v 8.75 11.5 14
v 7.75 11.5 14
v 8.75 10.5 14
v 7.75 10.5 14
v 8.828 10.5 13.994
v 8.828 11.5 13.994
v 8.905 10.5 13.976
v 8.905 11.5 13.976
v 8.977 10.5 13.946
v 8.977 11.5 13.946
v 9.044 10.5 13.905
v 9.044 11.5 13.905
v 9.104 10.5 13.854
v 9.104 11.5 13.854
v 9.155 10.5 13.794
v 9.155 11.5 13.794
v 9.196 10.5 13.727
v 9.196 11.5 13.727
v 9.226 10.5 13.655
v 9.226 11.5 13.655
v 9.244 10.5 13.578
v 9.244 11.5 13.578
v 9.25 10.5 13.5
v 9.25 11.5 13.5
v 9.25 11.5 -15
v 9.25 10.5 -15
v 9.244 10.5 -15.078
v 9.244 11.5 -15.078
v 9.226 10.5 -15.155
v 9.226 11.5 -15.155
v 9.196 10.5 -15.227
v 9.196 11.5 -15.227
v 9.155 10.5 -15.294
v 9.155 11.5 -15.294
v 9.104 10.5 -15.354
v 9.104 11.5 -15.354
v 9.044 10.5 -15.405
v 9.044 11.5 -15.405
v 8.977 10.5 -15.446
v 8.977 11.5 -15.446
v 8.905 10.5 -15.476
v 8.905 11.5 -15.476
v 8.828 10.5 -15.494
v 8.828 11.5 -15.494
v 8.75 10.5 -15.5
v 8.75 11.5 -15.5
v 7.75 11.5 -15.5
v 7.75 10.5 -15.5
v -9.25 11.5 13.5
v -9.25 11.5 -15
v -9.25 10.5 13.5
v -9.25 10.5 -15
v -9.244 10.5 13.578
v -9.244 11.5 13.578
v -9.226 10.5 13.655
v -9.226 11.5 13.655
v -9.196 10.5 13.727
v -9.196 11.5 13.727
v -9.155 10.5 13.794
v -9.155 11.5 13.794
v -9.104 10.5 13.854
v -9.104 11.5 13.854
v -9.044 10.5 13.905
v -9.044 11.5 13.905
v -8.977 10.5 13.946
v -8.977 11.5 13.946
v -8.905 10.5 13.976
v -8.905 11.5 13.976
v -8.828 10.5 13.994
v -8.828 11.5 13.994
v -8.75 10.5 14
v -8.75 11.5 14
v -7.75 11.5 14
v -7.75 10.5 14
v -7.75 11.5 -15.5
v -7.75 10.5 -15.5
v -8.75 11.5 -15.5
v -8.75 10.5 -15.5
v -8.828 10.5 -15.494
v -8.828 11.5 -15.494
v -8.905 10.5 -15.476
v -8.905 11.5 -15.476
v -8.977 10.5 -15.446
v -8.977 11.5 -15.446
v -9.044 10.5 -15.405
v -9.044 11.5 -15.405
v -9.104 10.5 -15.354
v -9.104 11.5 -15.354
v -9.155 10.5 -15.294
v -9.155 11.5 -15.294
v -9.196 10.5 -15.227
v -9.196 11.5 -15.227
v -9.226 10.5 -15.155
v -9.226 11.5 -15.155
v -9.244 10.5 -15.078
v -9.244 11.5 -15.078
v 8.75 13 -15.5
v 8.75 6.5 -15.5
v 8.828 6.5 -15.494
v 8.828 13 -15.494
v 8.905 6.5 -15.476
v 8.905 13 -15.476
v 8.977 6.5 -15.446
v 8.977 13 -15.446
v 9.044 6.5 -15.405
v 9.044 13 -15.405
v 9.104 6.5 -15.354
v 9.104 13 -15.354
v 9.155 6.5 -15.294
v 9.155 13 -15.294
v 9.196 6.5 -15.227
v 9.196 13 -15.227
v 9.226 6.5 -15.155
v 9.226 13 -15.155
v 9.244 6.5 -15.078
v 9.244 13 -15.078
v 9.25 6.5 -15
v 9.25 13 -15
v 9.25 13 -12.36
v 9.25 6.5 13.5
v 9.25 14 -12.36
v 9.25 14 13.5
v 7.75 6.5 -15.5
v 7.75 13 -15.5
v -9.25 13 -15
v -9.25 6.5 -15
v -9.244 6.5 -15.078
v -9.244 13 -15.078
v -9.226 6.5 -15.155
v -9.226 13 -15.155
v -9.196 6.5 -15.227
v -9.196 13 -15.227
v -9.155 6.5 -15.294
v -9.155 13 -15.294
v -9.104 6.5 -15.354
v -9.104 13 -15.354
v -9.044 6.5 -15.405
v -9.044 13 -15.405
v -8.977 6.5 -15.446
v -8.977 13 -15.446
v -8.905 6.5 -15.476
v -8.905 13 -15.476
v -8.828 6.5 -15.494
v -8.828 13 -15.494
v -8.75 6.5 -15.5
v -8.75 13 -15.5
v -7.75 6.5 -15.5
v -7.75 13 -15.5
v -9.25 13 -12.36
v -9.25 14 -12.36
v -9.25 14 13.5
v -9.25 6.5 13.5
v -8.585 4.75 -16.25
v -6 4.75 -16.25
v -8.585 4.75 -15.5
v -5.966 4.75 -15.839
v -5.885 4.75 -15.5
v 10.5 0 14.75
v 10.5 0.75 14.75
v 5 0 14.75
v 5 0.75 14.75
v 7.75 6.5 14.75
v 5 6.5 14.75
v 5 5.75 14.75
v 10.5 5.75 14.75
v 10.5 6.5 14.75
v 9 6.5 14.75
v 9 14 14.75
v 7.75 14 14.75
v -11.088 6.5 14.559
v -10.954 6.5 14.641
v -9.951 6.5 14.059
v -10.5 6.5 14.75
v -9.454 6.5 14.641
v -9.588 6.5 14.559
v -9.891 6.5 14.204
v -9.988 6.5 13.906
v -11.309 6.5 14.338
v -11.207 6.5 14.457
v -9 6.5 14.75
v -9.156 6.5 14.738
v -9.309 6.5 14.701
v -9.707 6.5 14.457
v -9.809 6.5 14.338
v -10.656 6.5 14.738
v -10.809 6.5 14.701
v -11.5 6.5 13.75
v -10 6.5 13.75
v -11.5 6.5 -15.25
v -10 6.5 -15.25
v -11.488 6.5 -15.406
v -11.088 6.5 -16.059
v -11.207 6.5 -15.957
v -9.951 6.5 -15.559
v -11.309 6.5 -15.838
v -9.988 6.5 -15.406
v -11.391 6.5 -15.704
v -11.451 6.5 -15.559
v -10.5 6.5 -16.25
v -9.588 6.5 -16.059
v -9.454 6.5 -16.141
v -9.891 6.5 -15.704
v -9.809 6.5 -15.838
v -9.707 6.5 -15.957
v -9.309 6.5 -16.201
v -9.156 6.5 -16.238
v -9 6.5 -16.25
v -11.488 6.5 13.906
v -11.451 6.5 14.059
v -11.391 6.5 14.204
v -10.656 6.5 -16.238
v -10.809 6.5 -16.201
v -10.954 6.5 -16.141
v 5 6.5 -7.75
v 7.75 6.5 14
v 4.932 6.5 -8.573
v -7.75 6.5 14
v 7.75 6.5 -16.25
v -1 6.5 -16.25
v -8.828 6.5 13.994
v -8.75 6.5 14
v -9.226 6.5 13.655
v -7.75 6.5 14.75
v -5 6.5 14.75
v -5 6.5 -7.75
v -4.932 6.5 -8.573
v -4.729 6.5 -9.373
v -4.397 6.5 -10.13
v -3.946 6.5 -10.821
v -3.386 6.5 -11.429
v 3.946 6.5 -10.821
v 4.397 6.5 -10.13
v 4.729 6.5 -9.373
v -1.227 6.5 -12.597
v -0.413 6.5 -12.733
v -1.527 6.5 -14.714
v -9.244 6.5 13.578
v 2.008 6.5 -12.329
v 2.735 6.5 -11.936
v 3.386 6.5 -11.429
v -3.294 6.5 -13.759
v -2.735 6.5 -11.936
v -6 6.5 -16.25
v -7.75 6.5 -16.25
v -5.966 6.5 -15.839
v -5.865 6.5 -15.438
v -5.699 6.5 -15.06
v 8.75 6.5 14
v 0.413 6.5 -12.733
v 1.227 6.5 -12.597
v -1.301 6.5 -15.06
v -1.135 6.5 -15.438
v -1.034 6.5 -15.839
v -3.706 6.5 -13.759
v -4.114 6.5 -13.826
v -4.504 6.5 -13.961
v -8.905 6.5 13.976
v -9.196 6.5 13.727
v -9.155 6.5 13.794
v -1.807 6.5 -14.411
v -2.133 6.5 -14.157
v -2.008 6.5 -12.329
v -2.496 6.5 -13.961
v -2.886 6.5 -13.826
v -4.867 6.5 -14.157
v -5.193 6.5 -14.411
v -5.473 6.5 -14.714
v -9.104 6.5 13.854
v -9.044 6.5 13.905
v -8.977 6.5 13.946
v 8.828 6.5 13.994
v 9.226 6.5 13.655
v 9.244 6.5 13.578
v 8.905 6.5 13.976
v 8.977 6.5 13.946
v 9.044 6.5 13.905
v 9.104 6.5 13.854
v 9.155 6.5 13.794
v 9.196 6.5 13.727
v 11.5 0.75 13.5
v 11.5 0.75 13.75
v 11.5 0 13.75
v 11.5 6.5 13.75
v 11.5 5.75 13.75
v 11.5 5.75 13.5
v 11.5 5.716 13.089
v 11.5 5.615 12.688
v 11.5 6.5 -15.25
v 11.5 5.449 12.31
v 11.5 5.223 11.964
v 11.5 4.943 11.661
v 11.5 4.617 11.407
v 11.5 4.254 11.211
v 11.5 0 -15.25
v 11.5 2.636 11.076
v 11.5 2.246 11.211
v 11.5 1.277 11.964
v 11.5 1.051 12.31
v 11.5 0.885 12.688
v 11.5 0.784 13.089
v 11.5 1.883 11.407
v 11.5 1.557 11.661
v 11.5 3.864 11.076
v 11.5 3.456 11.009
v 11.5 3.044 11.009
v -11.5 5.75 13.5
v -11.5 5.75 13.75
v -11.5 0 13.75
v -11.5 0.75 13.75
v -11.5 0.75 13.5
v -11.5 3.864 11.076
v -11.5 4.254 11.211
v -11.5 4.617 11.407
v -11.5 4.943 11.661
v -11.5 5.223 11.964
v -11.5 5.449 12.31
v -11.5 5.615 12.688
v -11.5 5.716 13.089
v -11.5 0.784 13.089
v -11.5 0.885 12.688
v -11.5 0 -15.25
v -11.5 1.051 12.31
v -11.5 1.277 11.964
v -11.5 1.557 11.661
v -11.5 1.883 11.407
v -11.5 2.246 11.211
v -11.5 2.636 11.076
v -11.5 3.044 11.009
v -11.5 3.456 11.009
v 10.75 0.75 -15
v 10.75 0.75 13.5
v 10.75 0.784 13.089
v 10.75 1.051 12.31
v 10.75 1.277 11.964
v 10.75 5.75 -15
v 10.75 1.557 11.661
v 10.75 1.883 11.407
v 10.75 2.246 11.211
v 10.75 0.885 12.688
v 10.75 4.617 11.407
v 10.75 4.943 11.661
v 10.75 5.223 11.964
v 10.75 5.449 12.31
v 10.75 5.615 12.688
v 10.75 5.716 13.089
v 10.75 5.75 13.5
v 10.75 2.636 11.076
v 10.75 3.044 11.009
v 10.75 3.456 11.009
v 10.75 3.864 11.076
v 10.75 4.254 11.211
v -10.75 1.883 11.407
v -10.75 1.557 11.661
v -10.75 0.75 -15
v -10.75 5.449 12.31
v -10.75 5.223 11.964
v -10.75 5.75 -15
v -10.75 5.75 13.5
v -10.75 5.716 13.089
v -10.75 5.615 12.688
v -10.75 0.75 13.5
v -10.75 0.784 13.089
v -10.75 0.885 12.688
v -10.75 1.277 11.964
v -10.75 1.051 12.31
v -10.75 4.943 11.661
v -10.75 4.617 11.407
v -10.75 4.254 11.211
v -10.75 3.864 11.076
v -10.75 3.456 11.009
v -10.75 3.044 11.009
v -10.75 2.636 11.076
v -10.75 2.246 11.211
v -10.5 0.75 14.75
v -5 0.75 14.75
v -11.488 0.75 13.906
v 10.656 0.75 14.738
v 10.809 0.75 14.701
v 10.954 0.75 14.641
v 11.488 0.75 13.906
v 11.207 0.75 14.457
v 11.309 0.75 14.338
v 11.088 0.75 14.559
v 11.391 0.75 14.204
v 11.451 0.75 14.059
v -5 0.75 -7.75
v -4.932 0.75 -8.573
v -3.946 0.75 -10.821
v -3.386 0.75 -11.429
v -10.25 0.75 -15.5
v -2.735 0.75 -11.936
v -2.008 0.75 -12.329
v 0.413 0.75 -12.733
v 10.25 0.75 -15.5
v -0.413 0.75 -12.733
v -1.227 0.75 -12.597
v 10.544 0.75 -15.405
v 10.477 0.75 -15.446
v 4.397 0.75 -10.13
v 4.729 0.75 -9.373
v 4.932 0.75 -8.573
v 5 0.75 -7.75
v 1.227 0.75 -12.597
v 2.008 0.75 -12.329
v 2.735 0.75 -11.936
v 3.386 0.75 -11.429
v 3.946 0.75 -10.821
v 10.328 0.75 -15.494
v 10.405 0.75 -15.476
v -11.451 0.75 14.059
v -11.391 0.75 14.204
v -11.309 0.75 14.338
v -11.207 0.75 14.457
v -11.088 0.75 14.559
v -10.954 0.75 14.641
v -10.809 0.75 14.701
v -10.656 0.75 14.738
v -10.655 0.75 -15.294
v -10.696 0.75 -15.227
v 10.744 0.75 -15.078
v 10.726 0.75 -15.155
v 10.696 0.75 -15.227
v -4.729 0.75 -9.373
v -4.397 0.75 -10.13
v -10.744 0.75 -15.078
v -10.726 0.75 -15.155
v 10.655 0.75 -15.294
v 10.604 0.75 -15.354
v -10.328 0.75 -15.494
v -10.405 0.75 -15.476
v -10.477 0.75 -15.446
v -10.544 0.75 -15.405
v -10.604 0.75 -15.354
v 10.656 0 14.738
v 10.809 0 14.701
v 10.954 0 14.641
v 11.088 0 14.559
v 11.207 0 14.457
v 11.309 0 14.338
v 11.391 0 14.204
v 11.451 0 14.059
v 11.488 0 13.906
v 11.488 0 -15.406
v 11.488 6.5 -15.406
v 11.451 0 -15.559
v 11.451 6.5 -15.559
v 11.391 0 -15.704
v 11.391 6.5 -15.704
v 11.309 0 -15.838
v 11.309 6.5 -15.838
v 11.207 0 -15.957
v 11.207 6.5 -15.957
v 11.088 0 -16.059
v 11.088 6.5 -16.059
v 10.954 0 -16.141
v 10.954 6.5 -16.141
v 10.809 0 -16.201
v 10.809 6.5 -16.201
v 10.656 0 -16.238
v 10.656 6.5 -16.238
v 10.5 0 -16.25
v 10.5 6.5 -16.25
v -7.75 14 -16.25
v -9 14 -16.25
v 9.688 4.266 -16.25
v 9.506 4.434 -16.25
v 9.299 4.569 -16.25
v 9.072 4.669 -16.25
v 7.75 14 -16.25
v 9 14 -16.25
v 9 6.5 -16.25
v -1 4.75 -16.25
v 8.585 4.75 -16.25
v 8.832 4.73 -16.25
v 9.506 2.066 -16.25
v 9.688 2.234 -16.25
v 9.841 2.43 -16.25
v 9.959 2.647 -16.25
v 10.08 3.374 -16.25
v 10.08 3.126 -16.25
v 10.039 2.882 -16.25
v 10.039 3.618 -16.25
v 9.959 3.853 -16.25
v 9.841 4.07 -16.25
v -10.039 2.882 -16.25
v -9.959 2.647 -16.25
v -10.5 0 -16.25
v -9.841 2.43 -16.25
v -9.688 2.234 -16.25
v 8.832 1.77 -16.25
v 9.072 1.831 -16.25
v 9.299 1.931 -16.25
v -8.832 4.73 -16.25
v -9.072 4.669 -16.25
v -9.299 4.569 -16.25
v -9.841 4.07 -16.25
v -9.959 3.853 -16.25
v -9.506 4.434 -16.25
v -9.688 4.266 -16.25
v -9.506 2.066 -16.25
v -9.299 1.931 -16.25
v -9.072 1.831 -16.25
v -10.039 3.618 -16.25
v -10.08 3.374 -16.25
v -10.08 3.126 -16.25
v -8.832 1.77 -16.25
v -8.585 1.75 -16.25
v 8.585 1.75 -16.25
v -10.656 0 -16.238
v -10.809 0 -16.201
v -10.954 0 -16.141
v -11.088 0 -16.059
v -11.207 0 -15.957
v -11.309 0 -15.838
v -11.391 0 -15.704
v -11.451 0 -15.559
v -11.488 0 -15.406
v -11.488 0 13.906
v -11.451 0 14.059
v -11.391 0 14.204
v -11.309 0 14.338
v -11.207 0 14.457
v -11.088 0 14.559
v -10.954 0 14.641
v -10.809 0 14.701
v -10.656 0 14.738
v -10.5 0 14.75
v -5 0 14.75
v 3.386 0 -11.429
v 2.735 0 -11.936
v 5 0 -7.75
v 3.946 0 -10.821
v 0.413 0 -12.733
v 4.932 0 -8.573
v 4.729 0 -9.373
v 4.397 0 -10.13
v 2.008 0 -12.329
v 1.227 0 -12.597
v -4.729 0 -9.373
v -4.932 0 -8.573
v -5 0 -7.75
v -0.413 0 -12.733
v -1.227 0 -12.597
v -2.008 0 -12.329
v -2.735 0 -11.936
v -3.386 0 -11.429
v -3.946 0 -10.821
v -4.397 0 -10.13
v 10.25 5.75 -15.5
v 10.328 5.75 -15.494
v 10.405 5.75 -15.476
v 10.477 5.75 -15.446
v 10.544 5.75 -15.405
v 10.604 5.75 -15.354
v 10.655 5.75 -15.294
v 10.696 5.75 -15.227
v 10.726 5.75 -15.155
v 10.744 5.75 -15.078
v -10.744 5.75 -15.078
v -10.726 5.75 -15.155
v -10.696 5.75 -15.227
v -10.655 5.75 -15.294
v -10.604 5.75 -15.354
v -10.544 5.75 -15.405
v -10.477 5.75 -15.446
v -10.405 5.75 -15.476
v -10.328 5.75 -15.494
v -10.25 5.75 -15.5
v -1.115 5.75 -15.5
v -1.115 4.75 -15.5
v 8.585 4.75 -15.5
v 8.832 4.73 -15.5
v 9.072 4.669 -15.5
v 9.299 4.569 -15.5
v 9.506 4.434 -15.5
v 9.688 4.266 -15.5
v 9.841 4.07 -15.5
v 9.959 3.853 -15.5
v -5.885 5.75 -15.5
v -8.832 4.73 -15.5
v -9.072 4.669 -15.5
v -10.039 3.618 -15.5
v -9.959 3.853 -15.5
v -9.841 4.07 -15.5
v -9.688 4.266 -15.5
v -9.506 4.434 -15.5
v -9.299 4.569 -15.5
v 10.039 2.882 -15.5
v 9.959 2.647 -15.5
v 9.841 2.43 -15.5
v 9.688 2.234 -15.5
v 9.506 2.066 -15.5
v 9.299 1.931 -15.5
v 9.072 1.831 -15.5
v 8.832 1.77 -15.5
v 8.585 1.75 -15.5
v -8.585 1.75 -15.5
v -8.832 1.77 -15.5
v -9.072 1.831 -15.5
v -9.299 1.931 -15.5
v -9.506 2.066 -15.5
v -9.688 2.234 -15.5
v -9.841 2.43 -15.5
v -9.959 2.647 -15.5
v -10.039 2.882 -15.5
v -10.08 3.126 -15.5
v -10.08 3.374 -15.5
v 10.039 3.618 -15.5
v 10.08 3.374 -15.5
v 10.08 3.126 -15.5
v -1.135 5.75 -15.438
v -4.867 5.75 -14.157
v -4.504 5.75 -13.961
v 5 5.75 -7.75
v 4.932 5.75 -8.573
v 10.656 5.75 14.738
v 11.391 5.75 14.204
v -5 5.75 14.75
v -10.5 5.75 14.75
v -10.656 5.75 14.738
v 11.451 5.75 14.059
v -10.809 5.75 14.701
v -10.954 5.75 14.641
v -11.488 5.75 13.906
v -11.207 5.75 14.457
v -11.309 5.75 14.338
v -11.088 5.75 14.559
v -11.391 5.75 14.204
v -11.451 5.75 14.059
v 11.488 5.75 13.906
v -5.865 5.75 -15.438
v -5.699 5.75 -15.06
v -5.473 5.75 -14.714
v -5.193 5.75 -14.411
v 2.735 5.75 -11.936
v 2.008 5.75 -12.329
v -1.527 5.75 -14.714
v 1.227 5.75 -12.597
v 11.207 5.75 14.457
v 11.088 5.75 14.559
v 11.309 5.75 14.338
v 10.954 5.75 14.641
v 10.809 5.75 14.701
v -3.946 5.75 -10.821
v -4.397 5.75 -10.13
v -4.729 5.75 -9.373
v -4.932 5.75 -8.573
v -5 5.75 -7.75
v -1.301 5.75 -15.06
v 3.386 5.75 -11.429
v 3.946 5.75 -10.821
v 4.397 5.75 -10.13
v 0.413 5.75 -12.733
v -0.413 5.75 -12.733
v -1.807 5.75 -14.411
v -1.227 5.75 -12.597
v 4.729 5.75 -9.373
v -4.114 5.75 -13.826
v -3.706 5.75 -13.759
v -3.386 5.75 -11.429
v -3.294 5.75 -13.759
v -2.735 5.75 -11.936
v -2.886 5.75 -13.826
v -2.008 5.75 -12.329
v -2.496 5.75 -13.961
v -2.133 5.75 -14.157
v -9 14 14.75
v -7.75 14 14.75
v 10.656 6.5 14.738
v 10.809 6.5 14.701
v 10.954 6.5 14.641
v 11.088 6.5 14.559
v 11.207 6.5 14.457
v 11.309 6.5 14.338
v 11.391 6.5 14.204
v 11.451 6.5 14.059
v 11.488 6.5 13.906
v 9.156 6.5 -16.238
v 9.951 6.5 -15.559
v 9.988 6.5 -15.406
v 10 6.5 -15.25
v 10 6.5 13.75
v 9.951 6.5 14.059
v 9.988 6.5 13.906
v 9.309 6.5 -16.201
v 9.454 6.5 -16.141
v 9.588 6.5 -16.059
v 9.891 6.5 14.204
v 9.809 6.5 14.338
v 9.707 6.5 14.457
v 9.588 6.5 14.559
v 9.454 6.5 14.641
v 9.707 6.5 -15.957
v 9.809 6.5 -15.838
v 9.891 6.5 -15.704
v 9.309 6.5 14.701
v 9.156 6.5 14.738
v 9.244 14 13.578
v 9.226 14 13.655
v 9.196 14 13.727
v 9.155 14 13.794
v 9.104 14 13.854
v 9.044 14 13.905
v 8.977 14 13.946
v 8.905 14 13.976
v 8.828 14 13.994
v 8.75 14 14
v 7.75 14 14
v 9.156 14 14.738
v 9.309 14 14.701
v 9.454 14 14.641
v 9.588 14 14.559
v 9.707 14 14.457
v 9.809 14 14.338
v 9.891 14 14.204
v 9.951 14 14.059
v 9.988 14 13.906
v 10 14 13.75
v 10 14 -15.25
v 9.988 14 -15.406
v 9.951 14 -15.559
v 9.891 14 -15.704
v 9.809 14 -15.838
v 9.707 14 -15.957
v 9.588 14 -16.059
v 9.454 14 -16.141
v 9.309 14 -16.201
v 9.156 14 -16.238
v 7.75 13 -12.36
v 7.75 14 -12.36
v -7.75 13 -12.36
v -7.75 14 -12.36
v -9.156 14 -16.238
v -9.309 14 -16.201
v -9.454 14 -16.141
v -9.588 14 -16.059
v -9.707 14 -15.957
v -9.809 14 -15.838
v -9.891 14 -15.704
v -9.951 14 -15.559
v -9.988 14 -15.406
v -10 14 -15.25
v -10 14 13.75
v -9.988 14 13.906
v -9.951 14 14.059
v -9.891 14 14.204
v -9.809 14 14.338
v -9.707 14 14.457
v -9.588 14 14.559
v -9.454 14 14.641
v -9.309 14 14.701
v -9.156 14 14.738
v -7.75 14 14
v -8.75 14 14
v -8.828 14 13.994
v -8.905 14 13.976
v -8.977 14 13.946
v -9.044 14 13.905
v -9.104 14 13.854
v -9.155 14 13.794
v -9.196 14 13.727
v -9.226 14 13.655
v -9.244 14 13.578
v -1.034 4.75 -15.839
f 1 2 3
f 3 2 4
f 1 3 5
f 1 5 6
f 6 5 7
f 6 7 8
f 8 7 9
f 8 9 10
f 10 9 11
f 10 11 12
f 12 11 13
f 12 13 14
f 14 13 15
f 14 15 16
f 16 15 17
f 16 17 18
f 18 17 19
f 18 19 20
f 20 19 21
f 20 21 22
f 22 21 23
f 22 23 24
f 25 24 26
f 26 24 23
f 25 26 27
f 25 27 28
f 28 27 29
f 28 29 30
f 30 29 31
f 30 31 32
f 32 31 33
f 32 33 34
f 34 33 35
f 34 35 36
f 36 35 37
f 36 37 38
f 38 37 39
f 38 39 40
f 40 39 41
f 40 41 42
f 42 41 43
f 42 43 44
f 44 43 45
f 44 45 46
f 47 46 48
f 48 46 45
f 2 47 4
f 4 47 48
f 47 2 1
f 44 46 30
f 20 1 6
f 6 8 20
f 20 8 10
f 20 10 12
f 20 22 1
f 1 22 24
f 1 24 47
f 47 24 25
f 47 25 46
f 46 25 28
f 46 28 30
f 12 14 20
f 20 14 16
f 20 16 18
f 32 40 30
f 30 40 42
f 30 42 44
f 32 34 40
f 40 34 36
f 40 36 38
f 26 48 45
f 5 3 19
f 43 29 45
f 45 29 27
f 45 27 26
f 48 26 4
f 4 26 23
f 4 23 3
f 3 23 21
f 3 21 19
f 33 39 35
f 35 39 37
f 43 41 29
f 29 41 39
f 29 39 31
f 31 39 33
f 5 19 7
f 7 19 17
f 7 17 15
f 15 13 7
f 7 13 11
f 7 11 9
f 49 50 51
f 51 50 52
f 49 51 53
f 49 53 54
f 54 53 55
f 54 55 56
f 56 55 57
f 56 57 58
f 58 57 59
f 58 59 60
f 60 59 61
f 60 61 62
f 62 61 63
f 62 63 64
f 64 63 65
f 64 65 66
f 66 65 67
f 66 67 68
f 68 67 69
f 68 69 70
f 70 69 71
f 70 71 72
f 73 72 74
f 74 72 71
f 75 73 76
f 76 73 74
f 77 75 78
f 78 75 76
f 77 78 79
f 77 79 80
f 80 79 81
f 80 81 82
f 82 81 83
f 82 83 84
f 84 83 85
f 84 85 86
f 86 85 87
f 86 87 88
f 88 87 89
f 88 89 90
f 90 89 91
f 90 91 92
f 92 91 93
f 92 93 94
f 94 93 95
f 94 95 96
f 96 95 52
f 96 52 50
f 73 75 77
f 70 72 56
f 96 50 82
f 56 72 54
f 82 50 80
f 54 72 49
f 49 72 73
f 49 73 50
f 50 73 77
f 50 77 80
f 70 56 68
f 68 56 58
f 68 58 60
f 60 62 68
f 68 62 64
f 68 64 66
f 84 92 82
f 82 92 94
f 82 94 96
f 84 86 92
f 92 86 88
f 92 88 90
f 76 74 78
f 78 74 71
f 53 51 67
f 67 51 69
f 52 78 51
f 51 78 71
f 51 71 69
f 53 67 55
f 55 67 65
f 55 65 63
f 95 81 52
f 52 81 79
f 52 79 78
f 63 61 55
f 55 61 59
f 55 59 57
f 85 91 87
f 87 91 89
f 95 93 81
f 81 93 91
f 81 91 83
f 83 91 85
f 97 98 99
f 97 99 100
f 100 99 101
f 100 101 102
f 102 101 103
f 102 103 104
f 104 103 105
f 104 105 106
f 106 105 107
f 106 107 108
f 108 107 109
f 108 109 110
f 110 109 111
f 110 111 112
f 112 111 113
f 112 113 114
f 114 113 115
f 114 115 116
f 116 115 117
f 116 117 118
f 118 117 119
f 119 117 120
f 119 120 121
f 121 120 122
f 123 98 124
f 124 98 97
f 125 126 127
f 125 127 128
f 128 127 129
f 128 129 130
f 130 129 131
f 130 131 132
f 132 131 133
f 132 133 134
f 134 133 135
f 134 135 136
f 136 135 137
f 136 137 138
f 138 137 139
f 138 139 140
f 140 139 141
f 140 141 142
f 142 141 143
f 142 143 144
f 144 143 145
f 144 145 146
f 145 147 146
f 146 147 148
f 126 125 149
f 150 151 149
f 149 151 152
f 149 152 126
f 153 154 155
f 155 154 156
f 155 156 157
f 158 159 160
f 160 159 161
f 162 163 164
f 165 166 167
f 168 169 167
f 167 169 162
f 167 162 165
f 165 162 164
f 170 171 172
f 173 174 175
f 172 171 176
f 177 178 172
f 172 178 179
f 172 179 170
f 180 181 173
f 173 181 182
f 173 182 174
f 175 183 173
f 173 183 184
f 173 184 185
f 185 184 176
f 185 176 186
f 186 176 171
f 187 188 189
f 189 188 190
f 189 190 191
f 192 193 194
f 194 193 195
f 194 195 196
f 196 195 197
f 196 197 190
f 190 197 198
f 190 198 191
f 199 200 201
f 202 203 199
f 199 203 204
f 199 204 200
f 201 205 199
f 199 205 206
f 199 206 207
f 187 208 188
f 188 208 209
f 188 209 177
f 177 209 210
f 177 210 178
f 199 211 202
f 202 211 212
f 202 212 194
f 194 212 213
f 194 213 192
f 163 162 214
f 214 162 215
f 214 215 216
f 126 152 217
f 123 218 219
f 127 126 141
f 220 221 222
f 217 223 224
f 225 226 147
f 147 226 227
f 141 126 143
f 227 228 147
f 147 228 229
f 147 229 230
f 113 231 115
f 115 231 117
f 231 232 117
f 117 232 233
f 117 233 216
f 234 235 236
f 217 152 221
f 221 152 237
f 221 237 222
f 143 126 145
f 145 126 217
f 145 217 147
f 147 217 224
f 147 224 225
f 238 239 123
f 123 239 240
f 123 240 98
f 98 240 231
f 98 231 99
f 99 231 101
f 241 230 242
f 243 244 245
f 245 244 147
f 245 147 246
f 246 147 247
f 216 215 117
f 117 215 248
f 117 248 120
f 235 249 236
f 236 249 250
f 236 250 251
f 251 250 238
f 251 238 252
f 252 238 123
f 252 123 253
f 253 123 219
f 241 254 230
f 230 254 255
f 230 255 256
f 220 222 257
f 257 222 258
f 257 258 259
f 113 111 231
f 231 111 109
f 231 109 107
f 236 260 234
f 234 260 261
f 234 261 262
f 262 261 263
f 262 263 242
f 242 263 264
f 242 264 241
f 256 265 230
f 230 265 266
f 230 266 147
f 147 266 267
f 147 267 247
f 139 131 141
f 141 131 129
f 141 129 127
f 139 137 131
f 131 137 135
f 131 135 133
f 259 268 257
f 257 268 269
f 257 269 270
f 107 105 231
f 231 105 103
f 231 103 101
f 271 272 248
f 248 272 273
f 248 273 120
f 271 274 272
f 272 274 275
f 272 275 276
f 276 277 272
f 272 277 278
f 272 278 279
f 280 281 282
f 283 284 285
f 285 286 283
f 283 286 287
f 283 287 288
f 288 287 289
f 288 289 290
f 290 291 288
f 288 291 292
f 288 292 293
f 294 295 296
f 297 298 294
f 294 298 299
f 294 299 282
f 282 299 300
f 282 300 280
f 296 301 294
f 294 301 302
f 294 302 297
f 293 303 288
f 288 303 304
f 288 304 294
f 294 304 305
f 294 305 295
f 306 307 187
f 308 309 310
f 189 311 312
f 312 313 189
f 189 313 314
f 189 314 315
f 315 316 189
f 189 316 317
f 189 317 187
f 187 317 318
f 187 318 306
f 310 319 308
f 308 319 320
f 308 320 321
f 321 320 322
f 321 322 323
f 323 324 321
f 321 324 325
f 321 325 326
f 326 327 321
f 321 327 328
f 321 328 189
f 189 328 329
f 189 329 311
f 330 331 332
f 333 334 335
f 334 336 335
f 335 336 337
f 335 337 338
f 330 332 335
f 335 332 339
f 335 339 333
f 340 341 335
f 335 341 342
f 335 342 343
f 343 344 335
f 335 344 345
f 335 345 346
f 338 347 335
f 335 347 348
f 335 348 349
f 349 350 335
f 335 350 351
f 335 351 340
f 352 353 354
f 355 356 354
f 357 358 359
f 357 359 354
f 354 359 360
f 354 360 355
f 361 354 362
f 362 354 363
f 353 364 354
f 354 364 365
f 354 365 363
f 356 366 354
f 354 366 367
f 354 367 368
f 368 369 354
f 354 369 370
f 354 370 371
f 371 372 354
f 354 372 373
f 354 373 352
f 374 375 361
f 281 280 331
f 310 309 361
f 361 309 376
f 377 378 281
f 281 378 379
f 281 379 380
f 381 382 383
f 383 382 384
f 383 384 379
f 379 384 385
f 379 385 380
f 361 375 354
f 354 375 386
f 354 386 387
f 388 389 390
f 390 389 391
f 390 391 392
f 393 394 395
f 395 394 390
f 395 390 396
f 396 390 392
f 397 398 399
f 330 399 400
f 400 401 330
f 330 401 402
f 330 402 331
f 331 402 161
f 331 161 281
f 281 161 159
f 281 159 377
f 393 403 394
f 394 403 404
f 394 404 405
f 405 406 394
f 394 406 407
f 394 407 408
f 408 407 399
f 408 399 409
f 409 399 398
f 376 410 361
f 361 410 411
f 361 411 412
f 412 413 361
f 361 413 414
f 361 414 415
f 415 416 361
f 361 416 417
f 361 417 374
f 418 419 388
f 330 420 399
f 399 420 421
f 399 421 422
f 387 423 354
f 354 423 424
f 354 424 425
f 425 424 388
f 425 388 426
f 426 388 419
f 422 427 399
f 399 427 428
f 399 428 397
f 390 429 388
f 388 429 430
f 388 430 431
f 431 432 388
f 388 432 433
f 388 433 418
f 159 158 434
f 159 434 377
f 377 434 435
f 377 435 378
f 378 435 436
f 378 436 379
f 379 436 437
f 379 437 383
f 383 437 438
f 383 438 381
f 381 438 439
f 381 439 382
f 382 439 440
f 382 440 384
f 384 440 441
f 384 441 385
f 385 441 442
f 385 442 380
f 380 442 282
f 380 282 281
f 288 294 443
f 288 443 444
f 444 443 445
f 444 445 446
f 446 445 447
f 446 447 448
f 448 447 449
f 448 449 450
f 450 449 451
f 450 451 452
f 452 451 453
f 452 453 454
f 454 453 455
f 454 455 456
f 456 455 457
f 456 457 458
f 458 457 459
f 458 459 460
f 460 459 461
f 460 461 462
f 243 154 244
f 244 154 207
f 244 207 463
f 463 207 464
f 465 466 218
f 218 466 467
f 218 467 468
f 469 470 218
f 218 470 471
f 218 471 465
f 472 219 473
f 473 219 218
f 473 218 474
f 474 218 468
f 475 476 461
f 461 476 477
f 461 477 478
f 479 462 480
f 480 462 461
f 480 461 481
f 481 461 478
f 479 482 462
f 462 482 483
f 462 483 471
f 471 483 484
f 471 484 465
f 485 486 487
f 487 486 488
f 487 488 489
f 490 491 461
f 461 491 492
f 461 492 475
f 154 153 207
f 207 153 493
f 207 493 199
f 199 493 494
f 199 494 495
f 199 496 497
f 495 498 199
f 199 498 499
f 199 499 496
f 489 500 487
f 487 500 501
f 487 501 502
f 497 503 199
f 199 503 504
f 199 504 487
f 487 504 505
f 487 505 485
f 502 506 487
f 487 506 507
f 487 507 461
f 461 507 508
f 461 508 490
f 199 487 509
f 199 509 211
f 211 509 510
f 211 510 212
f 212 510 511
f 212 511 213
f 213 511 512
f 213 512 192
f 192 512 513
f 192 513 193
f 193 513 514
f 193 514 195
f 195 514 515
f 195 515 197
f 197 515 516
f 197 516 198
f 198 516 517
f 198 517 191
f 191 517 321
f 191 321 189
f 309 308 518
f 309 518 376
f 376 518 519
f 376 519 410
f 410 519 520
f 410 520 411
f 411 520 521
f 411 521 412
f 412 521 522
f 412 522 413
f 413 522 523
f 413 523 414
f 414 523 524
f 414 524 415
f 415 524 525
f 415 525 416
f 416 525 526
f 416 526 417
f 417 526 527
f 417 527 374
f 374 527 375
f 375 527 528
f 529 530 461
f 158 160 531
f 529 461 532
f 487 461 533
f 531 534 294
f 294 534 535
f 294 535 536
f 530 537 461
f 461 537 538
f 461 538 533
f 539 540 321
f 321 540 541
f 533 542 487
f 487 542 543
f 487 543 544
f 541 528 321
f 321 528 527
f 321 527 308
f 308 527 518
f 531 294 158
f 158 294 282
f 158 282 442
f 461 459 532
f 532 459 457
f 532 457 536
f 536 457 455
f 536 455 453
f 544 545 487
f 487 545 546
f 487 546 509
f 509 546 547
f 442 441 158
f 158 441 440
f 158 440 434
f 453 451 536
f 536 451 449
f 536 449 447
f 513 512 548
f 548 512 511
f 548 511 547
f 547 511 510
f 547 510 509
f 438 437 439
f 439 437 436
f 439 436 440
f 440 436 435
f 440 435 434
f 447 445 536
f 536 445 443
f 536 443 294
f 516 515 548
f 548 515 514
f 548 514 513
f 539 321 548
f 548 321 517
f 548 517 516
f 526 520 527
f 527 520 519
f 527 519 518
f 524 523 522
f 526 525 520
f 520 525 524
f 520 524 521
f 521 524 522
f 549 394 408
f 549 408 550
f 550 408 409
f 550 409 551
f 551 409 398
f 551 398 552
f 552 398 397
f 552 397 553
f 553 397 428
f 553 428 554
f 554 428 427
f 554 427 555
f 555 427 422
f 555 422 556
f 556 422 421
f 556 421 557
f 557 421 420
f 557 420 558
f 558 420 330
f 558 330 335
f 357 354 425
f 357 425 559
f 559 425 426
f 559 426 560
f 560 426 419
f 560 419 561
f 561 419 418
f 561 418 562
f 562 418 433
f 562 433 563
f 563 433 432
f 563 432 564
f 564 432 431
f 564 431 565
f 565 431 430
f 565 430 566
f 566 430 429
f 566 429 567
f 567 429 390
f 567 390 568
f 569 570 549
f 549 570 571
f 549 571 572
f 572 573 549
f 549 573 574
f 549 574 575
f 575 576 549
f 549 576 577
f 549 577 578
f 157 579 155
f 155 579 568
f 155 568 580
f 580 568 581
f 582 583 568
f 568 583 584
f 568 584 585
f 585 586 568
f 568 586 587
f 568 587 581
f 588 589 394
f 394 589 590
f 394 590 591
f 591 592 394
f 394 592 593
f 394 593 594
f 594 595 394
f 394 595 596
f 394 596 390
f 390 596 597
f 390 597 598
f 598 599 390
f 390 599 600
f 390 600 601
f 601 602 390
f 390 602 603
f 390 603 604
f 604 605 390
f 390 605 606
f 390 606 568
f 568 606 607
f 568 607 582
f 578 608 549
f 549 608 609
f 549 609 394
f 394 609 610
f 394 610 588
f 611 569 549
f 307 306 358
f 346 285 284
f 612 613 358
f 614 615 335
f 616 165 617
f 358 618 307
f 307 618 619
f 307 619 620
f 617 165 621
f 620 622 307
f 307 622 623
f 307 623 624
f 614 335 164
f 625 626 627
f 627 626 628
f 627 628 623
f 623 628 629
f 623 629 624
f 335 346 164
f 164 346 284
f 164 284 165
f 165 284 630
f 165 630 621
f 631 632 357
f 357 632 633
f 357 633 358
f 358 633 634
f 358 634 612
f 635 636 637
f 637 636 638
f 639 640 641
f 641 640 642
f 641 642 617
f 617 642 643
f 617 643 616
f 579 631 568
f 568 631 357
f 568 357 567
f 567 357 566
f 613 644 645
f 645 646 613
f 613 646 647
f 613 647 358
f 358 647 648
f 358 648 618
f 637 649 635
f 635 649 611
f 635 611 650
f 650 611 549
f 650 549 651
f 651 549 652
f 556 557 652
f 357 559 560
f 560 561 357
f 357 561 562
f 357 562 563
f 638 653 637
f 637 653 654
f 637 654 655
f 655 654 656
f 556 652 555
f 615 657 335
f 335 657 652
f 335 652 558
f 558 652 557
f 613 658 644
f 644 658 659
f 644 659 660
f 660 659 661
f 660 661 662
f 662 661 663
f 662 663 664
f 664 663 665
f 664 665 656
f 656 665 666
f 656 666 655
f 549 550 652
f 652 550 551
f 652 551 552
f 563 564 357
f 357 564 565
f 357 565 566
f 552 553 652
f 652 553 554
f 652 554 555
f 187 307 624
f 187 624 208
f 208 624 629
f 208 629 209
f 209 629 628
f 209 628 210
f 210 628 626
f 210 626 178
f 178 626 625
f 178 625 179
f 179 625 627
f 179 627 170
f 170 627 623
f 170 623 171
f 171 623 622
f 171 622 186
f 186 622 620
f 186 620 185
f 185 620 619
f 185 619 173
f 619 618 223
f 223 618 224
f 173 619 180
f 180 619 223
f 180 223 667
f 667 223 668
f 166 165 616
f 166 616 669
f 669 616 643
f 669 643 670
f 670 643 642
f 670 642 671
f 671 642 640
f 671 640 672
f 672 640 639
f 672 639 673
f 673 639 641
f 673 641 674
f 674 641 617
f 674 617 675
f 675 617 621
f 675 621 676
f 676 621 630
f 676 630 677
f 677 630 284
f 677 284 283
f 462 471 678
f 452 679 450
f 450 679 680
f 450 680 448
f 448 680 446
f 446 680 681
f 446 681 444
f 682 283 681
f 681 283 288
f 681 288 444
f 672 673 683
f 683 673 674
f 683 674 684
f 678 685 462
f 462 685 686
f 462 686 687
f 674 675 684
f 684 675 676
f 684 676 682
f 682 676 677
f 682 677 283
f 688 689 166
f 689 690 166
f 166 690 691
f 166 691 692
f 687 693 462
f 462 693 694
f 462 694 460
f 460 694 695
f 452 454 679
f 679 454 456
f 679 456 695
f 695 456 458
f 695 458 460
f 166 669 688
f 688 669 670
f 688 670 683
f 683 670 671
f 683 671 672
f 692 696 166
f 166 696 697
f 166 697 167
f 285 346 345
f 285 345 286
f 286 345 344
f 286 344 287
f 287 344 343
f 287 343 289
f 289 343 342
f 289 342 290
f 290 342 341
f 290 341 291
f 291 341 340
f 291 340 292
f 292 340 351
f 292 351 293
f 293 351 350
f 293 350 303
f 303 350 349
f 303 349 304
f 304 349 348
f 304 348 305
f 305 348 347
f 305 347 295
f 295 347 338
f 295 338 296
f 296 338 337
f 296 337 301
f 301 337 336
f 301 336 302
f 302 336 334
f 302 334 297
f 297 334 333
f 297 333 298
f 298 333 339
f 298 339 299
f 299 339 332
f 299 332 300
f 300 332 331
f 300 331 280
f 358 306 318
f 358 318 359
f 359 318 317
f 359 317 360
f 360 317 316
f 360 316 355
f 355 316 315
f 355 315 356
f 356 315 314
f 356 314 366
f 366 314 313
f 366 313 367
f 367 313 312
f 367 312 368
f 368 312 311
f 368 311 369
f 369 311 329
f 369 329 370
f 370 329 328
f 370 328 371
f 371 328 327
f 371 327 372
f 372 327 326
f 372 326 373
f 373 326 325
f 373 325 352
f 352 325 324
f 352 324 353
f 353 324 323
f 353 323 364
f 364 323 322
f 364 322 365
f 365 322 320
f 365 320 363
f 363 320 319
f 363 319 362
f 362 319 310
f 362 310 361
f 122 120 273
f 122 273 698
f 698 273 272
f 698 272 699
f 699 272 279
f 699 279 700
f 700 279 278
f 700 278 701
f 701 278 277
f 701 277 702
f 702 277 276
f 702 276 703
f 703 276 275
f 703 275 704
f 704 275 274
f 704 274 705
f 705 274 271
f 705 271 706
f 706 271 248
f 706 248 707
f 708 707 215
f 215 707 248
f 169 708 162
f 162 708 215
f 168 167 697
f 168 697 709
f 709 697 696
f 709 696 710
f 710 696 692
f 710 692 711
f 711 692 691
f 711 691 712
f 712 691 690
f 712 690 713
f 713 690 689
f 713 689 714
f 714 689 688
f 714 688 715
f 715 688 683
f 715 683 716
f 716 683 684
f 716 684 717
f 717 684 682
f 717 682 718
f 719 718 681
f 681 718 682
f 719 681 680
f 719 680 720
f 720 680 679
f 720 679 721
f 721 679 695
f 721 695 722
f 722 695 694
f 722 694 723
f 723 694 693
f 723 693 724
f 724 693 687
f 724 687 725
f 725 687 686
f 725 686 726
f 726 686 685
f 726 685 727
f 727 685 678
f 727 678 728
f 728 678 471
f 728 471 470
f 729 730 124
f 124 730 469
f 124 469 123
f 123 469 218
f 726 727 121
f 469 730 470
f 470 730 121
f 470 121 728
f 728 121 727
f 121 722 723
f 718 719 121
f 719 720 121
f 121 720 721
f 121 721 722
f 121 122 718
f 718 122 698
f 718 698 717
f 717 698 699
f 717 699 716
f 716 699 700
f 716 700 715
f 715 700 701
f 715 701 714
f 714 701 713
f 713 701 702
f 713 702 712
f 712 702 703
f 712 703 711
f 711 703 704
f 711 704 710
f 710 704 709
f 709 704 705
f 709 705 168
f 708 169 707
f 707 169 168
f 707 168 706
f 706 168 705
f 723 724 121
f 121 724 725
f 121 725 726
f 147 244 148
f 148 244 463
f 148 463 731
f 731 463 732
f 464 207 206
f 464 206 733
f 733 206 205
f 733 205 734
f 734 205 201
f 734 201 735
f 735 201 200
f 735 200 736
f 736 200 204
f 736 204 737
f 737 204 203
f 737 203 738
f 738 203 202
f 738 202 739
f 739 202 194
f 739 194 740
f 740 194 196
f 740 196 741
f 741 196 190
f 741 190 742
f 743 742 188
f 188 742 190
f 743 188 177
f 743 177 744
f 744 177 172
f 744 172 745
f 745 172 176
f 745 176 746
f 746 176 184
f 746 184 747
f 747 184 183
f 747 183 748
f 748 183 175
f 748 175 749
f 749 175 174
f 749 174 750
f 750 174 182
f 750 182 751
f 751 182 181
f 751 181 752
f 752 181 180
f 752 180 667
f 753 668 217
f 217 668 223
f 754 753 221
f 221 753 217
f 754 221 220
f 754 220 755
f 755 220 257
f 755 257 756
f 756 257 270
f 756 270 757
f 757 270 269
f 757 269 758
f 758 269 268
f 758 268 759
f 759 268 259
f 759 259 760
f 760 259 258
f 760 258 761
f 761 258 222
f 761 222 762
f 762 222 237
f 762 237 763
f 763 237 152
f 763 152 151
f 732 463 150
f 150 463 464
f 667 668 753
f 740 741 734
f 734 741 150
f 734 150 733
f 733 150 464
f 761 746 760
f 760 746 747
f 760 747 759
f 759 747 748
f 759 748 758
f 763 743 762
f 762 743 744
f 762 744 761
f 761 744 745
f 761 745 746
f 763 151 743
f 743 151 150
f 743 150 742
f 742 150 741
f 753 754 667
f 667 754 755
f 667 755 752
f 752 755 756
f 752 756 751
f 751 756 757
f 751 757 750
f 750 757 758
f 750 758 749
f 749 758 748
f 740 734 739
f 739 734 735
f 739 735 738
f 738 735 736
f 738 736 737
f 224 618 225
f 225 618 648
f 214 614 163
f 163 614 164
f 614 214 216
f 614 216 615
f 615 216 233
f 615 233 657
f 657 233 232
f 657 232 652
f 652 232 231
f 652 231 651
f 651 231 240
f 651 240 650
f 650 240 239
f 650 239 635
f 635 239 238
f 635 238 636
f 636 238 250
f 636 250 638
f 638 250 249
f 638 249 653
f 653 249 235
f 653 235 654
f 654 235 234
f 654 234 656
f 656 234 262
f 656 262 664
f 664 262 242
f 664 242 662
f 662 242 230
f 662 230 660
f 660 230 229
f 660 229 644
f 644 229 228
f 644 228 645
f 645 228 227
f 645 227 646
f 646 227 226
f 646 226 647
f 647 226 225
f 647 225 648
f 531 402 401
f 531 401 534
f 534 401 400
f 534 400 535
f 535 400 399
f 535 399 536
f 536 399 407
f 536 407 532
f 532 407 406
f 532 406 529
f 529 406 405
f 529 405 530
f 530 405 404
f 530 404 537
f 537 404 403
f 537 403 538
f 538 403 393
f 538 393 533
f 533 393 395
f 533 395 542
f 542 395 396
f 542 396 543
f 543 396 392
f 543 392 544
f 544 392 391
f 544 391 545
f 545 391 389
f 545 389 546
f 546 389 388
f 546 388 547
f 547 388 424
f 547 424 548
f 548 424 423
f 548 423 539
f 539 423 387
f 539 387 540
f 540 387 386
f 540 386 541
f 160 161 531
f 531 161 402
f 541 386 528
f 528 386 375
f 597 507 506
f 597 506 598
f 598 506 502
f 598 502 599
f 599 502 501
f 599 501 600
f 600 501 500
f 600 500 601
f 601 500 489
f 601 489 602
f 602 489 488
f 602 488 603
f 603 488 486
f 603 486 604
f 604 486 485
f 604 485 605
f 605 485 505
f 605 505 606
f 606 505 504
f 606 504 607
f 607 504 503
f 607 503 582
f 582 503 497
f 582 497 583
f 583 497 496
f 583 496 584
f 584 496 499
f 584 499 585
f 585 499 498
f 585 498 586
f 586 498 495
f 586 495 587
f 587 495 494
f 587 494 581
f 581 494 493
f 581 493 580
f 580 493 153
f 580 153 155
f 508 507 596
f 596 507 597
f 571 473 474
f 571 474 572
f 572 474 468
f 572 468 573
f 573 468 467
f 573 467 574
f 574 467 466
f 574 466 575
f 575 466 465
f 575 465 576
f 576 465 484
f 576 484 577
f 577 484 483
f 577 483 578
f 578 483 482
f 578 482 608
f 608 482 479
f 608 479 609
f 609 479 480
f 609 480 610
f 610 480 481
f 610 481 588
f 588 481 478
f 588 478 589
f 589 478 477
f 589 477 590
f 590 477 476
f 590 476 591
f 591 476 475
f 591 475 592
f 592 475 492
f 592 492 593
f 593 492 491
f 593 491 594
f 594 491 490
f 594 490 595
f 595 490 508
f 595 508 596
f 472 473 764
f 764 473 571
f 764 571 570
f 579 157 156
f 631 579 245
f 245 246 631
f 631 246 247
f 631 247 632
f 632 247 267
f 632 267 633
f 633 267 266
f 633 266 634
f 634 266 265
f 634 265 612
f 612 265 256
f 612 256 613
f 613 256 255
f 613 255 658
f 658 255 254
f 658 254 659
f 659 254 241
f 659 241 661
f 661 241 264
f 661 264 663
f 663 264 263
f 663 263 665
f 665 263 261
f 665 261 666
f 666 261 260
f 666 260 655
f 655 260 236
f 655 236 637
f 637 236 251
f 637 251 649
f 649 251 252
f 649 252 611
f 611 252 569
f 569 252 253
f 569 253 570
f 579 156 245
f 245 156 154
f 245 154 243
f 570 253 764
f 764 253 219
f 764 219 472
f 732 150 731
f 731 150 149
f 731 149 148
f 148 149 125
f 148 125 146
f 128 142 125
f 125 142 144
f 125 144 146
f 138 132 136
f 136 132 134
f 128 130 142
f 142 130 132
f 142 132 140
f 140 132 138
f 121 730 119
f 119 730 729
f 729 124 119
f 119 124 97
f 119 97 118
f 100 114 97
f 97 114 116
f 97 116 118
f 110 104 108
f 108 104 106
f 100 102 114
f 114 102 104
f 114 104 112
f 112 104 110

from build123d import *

# Parameters (mm, degrees)
BASE_EXTRUDE_DEPTH          = 0.75
SIDEWALL_EXTRUDE_DEPTH      = 5.75
TOP_EXTRUDE_START           = 5.75
TOP_EXTRUDE_DEPTH           = 0.75
CUT_EXTRUDE1_DEPTH          = 29.901773302
CUT_EXTRUDE1_DEPTH_BACK     = 29.901773302
PCB_SUPPORT_EXTRUDE_START   = 4
PCB_SUPPORT_EXTRUDE_DEPTH   = 1
PCB_SUPPORT_EXTRUDE_2_DEPTH = 1
PCB_RIM_EXTRUDE_DEPTH       = 7.5
CUT_EXTRUDE2_DEPTH          = 22.2735164
CUT_EXTRUDE3_DEPTH          = 3.5
CUT_EXTRUDE4_DEPTH          = 2
BOSS_EXTRUDE1_START         = 6.5
BOSS_EXTRUDE1_DEPTH         = 1


with BuildPart() as part:
    # battery-base → base-extrude (new body)
    with BuildSketch(Plane(origin=(0, 0, 0), x_dir=(1, 0, 0), z_dir=(0, 1, 0))):
        with BuildLine():
            Line((-10.5, 16.25), (10.5, 16.25))
            ThreePointArc((10.5, 16.25), (11.207106781, 15.957106781), (11.5, 15.25))
            Line((11.5, 15.25), (11.5, -13.75))
            ThreePointArc((11.5, -13.75), (11.207106781, -14.457106781), (10.5, -14.75))
            Line((10.5, -14.75), (-10.5, -14.75))
            ThreePointArc((-10.5, -14.75), (-11.207106781, -14.457106781), (-11.5, -13.75))
            Line((-11.5, -13.75), (-11.5, 15.25))
            ThreePointArc((-11.5, 15.25), (-11.207106781, 15.957106781), (-10.5, 16.25))
        make_face()
    extrude(amount=BASE_EXTRUDE_DEPTH)

    # battery-base<12> → sidewall-extrude (add)
    with BuildSketch(Plane(origin=(0, 0, 0), x_dir=(1, 0, 0), z_dir=(0, 1, 0))):
        with BuildLine():
            Line((-11.5, -13.5), (-10.75, -13.5))
            Line((-10.75, -13.5), (-10.75, 15))
            ThreePointArc((-10.75, 15), (-10.603553391, 15.353553391), (-10.25, 15.5))
            Line((-10.25, 15.5), (10.25, 15.5))
            ThreePointArc((10.25, 15.5), (10.603553391, 15.353553391), (10.75, 15))
            Line((10.75, 15), (10.75, -13.5))
            Line((10.75, -13.5), (11.5, -13.5))
            Line((11.5, -13.5), (11.5, 15.25))
            ThreePointArc((11.5, 15.25), (11.207106781, 15.957106781), (10.5, 16.25))
            Line((10.5, 16.25), (-10.5, 16.25))
            ThreePointArc((-10.5, 16.25), (-11.207106781, 15.957106781), (-11.5, 15.25))
            Line((-11.5, 15.25), (-11.5, -13.5))
        make_face()
    extrude(amount=SIDEWALL_EXTRUDE_DEPTH)

    # battery-base<13> → top-extrude (add)
    with BuildSketch(Plane(origin=(0, 0, 0), x_dir=(1, 0, 0), z_dir=(0, 1, 0)).offset(TOP_EXTRUDE_START)):
        with BuildLine():
            Line((11.5, -13.75), (11.5, 15.25))
            ThreePointArc((11.5, 15.25), (11.207106781, 15.957106781), (10.5, 16.25))
            Line((10.5, 16.25), (-10.5, 16.25))
            ThreePointArc((-10.5, 16.25), (-11.207106781, 15.957106781), (-11.5, 15.25))
            Line((-11.5, 15.25), (-11.5, -13.75))
            ThreePointArc((-11.5, -13.75), (-11.207106781, -14.457106781), (-10.5, -14.75))
            Line((-10.5, -14.75), (10.5, -14.75))
            ThreePointArc((10.5, -14.75), (11.207106781, -14.457106781), (11.5, -13.75))
        make_face()
    extrude(amount=TOP_EXTRUDE_DEPTH)

    # round-cut → Cut-Extrude1 (cut, two sides: drawn at the far end of the back side and taken through both)
    with BuildSketch(Plane(origin=(11.5, 0, 0), x_dir=(0, 0, -1), z_dir=(1, 0, 0)).offset(-CUT_EXTRUDE1_DEPTH_BACK)):
        with BuildLine():
            Line((-84.101155105, 0.75), (-13.5, 0.75))
            ThreePointArc((-13.5, 0.75), (-11, 3.25), (-13.5, 5.75))
            Line((-13.5, 5.75), (-84.101155105, 5.75))
            Line((-84.101155105, 5.75), (-225.303465314, 5.75))
            Line((-225.303465314, 5.75), (-225.303465314, 0.75))
            Line((-225.303465314, 0.75), (-84.101155105, 0.75))
        make_face()
    extrude(amount=CUT_EXTRUDE1_DEPTH + CUT_EXTRUDE1_DEPTH_BACK, mode=Mode.SUBTRACT)

    # PCB-support<3> → PCB-rim-extrude (add)
    with BuildSketch(Plane(origin=(0, 6.5, 0), x_dir=(1, 0, 0), z_dir=(0, 1, 0))):
        with BuildLine():
            Line((-7.75, -14.75), (-7.75, -14))
            Line((-7.75, -14), (-8.75, -14))
            ThreePointArc((-8.75, -14), (-9.103553391, -13.853553391), (-9.25, -13.5))
            Line((-9.25, -13.5), (-9.25, 15))
            ThreePointArc((-9.25, 15), (-9.103553391, 15.353553391), (-8.75, 15.5))
            Line((-8.75, 15.5), (-7.75, 15.5))
            Line((-7.75, 15.5), (-7.75, 16.25))
            Line((-7.75, 16.25), (-9, 16.25))
            ThreePointArc((-9, 16.25), (-9.707106781, 15.957106781), (-10, 15.25))
            Line((-10, 15.25), (-10, -13.75))
            ThreePointArc((-10, -13.75), (-9.707106781, -14.457106781), (-9, -14.75))
            Line((-9, -14.75), (-7.75, -14.75))
        make_face()
        with BuildLine():
            Line((8.75, -14), (7.75, -14))
            Line((7.75, -14), (7.75, -14.75))
            Line((7.75, -14.75), (9, -14.75))
            ThreePointArc((9, -14.75), (9.707106781, -14.457106781), (10, -13.75))
            Line((10, -13.75), (10, 15.25))
            ThreePointArc((10, 15.25), (9.707106781, 15.957106781), (9, 16.25))
            Line((9, 16.25), (7.75, 16.25))
            Line((7.75, 16.25), (7.75, 15.5))
            Line((7.75, 15.5), (8.75, 15.5))
            ThreePointArc((8.75, 15.5), (9.103553391, 15.353553391), (9.25, 15))
            Line((9.25, 15), (9.25, -13.5))
            ThreePointArc((9.25, -13.5), (9.103553391, -13.853553391), (8.75, -14))
        make_face()
    extrude(amount=PCB_RIM_EXTRUDE_DEPTH)

    # cut-away → Cut-Extrude2 (cut, through all)
    with BuildSketch(Plane(origin=(0, 6.5, 0), x_dir=(1, 0, 0), z_dir=(0, 1, 0))):
        with BuildLine():
            Line((-5, 7.75), (-5, -14.75))
            Line((-5, -14.75), (5, -14.75))
            Line((5, -14.75), (5, 7.75))
            ThreePointArc((5, 7.75), (0, 12.75), (-5, 7.75))
        make_face()
    extrude(amount=-CUT_EXTRUDE2_DEPTH, mode=Mode.SUBTRACT)

    # Sketch7 → Cut-Extrude3 (cut)
    with BuildSketch(Plane(origin=(0, 0, -16.25), x_dir=(-1, 0, 0), z_dir=(0, 0, -1))):
        with BuildLine():
            Line((8.584888193, 1.75), (-8.584888193, 1.75))
            ThreePointArc((-8.584888193, 1.75), (-10.084888193, 3.25), (-8.584888193, 4.75))
            Line((-8.584888193, 4.75), (8.584888193, 4.75))
            ThreePointArc((8.584888193, 4.75), (10.084888193, 3.25), (8.584888193, 1.75))
        make_face()
    extrude(amount=-CUT_EXTRUDE3_DEPTH, mode=Mode.SUBTRACT)

    # Sketch8 → Cut-Extrude4 (cut)
    with BuildSketch(Plane(origin=(0, 6.5, 0), x_dir=(1, 0, 0), z_dir=(0, 1, 0))):
        with BuildLine():
            Line((-6, 16.25), (-1, 16.25))
            ThreePointArc((-1, 16.25), (-3.5, 13.75), (-6, 16.25))
        make_face()
    extrude(amount=-CUT_EXTRUDE4_DEPTH, mode=Mode.SUBTRACT)

    # PCB-support<4> → Boss-Extrude1 (add)
    with BuildSketch(Plane(origin=(0, 6.5, 0), x_dir=(1, 0, 0), z_dir=(0, 1, 0)).offset(BOSS_EXTRUDE1_START)):
        with BuildLine():
            Line((-9.25, 12.359619479), (-7.75, 12.359619479))
            Line((-7.75, 12.359619479), (-7.75, 15.5))
            Line((-7.75, 15.5), (-8.75, 15.5))
            ThreePointArc((-8.75, 15.5), (-9.103553391, 15.353553391), (-9.25, 15))
            Line((-9.25, 15), (-9.25, 12.359619479))
        make_face()
        with BuildLine():
            Line((7.75, 15.5), (7.75, 12.359619479))
            Line((7.75, 12.359619479), (9.25, 12.359619479))
            Line((9.25, 12.359619479), (9.25, 15))
            ThreePointArc((9.25, 15), (9.103553391, 15.353553391), (8.75, 15.5))
            Line((8.75, 15.5), (7.75, 15.5))
        make_face()
    extrude(amount=BOSS_EXTRUDE1_DEPTH)


with BuildPart() as body_2:
    # PCB-support → PCB-support-extrude (new body)
    with BuildSketch(Plane(origin=(0, 6.5, 0), x_dir=(1, 0, 0), z_dir=(0, 1, 0)).offset(PCB_SUPPORT_EXTRUDE_START)):
        with BuildLine():
            Line((-8.75, -14), (-7.75, -14))
            Line((-7.75, -14), (-7.75, 15.5))
            Line((-7.75, 15.5), (-8.75, 15.5))
            ThreePointArc((-8.75, 15.5), (-9.103553391, 15.353553391), (-9.25, 15))
            Line((-9.25, 15), (-9.25, -13.5))
            ThreePointArc((-9.25, -13.5), (-9.103553391, -13.853553391), (-8.75, -14))
        make_face()
    extrude(amount=PCB_SUPPORT_EXTRUDE_DEPTH)


with BuildPart() as body_3:
    # PCB-support → PCB-support-extrude 2 (new body)
    with BuildSketch(Plane(origin=(0, 6.5, 0), x_dir=(1, 0, 0), z_dir=(0, 1, 0)).offset(PCB_SUPPORT_EXTRUDE_START)):
        with BuildLine():
            Line((7.75, -14), (8.75, -14))
            ThreePointArc((8.75, -14), (9.103553391, -13.853553391), (9.25, -13.5))
            Line((9.25, -13.5), (9.25, 15))
            ThreePointArc((9.25, 15), (9.103553391, 15.353553391), (8.75, 15.5))
            Line((8.75, 15.5), (7.75, 15.5))
            Line((7.75, 15.5), (7.75, -14))
        make_face()
    extrude(amount=PCB_SUPPORT_EXTRUDE_2_DEPTH)


solid = Compound([part.part, body_2.part, body_3.part])
